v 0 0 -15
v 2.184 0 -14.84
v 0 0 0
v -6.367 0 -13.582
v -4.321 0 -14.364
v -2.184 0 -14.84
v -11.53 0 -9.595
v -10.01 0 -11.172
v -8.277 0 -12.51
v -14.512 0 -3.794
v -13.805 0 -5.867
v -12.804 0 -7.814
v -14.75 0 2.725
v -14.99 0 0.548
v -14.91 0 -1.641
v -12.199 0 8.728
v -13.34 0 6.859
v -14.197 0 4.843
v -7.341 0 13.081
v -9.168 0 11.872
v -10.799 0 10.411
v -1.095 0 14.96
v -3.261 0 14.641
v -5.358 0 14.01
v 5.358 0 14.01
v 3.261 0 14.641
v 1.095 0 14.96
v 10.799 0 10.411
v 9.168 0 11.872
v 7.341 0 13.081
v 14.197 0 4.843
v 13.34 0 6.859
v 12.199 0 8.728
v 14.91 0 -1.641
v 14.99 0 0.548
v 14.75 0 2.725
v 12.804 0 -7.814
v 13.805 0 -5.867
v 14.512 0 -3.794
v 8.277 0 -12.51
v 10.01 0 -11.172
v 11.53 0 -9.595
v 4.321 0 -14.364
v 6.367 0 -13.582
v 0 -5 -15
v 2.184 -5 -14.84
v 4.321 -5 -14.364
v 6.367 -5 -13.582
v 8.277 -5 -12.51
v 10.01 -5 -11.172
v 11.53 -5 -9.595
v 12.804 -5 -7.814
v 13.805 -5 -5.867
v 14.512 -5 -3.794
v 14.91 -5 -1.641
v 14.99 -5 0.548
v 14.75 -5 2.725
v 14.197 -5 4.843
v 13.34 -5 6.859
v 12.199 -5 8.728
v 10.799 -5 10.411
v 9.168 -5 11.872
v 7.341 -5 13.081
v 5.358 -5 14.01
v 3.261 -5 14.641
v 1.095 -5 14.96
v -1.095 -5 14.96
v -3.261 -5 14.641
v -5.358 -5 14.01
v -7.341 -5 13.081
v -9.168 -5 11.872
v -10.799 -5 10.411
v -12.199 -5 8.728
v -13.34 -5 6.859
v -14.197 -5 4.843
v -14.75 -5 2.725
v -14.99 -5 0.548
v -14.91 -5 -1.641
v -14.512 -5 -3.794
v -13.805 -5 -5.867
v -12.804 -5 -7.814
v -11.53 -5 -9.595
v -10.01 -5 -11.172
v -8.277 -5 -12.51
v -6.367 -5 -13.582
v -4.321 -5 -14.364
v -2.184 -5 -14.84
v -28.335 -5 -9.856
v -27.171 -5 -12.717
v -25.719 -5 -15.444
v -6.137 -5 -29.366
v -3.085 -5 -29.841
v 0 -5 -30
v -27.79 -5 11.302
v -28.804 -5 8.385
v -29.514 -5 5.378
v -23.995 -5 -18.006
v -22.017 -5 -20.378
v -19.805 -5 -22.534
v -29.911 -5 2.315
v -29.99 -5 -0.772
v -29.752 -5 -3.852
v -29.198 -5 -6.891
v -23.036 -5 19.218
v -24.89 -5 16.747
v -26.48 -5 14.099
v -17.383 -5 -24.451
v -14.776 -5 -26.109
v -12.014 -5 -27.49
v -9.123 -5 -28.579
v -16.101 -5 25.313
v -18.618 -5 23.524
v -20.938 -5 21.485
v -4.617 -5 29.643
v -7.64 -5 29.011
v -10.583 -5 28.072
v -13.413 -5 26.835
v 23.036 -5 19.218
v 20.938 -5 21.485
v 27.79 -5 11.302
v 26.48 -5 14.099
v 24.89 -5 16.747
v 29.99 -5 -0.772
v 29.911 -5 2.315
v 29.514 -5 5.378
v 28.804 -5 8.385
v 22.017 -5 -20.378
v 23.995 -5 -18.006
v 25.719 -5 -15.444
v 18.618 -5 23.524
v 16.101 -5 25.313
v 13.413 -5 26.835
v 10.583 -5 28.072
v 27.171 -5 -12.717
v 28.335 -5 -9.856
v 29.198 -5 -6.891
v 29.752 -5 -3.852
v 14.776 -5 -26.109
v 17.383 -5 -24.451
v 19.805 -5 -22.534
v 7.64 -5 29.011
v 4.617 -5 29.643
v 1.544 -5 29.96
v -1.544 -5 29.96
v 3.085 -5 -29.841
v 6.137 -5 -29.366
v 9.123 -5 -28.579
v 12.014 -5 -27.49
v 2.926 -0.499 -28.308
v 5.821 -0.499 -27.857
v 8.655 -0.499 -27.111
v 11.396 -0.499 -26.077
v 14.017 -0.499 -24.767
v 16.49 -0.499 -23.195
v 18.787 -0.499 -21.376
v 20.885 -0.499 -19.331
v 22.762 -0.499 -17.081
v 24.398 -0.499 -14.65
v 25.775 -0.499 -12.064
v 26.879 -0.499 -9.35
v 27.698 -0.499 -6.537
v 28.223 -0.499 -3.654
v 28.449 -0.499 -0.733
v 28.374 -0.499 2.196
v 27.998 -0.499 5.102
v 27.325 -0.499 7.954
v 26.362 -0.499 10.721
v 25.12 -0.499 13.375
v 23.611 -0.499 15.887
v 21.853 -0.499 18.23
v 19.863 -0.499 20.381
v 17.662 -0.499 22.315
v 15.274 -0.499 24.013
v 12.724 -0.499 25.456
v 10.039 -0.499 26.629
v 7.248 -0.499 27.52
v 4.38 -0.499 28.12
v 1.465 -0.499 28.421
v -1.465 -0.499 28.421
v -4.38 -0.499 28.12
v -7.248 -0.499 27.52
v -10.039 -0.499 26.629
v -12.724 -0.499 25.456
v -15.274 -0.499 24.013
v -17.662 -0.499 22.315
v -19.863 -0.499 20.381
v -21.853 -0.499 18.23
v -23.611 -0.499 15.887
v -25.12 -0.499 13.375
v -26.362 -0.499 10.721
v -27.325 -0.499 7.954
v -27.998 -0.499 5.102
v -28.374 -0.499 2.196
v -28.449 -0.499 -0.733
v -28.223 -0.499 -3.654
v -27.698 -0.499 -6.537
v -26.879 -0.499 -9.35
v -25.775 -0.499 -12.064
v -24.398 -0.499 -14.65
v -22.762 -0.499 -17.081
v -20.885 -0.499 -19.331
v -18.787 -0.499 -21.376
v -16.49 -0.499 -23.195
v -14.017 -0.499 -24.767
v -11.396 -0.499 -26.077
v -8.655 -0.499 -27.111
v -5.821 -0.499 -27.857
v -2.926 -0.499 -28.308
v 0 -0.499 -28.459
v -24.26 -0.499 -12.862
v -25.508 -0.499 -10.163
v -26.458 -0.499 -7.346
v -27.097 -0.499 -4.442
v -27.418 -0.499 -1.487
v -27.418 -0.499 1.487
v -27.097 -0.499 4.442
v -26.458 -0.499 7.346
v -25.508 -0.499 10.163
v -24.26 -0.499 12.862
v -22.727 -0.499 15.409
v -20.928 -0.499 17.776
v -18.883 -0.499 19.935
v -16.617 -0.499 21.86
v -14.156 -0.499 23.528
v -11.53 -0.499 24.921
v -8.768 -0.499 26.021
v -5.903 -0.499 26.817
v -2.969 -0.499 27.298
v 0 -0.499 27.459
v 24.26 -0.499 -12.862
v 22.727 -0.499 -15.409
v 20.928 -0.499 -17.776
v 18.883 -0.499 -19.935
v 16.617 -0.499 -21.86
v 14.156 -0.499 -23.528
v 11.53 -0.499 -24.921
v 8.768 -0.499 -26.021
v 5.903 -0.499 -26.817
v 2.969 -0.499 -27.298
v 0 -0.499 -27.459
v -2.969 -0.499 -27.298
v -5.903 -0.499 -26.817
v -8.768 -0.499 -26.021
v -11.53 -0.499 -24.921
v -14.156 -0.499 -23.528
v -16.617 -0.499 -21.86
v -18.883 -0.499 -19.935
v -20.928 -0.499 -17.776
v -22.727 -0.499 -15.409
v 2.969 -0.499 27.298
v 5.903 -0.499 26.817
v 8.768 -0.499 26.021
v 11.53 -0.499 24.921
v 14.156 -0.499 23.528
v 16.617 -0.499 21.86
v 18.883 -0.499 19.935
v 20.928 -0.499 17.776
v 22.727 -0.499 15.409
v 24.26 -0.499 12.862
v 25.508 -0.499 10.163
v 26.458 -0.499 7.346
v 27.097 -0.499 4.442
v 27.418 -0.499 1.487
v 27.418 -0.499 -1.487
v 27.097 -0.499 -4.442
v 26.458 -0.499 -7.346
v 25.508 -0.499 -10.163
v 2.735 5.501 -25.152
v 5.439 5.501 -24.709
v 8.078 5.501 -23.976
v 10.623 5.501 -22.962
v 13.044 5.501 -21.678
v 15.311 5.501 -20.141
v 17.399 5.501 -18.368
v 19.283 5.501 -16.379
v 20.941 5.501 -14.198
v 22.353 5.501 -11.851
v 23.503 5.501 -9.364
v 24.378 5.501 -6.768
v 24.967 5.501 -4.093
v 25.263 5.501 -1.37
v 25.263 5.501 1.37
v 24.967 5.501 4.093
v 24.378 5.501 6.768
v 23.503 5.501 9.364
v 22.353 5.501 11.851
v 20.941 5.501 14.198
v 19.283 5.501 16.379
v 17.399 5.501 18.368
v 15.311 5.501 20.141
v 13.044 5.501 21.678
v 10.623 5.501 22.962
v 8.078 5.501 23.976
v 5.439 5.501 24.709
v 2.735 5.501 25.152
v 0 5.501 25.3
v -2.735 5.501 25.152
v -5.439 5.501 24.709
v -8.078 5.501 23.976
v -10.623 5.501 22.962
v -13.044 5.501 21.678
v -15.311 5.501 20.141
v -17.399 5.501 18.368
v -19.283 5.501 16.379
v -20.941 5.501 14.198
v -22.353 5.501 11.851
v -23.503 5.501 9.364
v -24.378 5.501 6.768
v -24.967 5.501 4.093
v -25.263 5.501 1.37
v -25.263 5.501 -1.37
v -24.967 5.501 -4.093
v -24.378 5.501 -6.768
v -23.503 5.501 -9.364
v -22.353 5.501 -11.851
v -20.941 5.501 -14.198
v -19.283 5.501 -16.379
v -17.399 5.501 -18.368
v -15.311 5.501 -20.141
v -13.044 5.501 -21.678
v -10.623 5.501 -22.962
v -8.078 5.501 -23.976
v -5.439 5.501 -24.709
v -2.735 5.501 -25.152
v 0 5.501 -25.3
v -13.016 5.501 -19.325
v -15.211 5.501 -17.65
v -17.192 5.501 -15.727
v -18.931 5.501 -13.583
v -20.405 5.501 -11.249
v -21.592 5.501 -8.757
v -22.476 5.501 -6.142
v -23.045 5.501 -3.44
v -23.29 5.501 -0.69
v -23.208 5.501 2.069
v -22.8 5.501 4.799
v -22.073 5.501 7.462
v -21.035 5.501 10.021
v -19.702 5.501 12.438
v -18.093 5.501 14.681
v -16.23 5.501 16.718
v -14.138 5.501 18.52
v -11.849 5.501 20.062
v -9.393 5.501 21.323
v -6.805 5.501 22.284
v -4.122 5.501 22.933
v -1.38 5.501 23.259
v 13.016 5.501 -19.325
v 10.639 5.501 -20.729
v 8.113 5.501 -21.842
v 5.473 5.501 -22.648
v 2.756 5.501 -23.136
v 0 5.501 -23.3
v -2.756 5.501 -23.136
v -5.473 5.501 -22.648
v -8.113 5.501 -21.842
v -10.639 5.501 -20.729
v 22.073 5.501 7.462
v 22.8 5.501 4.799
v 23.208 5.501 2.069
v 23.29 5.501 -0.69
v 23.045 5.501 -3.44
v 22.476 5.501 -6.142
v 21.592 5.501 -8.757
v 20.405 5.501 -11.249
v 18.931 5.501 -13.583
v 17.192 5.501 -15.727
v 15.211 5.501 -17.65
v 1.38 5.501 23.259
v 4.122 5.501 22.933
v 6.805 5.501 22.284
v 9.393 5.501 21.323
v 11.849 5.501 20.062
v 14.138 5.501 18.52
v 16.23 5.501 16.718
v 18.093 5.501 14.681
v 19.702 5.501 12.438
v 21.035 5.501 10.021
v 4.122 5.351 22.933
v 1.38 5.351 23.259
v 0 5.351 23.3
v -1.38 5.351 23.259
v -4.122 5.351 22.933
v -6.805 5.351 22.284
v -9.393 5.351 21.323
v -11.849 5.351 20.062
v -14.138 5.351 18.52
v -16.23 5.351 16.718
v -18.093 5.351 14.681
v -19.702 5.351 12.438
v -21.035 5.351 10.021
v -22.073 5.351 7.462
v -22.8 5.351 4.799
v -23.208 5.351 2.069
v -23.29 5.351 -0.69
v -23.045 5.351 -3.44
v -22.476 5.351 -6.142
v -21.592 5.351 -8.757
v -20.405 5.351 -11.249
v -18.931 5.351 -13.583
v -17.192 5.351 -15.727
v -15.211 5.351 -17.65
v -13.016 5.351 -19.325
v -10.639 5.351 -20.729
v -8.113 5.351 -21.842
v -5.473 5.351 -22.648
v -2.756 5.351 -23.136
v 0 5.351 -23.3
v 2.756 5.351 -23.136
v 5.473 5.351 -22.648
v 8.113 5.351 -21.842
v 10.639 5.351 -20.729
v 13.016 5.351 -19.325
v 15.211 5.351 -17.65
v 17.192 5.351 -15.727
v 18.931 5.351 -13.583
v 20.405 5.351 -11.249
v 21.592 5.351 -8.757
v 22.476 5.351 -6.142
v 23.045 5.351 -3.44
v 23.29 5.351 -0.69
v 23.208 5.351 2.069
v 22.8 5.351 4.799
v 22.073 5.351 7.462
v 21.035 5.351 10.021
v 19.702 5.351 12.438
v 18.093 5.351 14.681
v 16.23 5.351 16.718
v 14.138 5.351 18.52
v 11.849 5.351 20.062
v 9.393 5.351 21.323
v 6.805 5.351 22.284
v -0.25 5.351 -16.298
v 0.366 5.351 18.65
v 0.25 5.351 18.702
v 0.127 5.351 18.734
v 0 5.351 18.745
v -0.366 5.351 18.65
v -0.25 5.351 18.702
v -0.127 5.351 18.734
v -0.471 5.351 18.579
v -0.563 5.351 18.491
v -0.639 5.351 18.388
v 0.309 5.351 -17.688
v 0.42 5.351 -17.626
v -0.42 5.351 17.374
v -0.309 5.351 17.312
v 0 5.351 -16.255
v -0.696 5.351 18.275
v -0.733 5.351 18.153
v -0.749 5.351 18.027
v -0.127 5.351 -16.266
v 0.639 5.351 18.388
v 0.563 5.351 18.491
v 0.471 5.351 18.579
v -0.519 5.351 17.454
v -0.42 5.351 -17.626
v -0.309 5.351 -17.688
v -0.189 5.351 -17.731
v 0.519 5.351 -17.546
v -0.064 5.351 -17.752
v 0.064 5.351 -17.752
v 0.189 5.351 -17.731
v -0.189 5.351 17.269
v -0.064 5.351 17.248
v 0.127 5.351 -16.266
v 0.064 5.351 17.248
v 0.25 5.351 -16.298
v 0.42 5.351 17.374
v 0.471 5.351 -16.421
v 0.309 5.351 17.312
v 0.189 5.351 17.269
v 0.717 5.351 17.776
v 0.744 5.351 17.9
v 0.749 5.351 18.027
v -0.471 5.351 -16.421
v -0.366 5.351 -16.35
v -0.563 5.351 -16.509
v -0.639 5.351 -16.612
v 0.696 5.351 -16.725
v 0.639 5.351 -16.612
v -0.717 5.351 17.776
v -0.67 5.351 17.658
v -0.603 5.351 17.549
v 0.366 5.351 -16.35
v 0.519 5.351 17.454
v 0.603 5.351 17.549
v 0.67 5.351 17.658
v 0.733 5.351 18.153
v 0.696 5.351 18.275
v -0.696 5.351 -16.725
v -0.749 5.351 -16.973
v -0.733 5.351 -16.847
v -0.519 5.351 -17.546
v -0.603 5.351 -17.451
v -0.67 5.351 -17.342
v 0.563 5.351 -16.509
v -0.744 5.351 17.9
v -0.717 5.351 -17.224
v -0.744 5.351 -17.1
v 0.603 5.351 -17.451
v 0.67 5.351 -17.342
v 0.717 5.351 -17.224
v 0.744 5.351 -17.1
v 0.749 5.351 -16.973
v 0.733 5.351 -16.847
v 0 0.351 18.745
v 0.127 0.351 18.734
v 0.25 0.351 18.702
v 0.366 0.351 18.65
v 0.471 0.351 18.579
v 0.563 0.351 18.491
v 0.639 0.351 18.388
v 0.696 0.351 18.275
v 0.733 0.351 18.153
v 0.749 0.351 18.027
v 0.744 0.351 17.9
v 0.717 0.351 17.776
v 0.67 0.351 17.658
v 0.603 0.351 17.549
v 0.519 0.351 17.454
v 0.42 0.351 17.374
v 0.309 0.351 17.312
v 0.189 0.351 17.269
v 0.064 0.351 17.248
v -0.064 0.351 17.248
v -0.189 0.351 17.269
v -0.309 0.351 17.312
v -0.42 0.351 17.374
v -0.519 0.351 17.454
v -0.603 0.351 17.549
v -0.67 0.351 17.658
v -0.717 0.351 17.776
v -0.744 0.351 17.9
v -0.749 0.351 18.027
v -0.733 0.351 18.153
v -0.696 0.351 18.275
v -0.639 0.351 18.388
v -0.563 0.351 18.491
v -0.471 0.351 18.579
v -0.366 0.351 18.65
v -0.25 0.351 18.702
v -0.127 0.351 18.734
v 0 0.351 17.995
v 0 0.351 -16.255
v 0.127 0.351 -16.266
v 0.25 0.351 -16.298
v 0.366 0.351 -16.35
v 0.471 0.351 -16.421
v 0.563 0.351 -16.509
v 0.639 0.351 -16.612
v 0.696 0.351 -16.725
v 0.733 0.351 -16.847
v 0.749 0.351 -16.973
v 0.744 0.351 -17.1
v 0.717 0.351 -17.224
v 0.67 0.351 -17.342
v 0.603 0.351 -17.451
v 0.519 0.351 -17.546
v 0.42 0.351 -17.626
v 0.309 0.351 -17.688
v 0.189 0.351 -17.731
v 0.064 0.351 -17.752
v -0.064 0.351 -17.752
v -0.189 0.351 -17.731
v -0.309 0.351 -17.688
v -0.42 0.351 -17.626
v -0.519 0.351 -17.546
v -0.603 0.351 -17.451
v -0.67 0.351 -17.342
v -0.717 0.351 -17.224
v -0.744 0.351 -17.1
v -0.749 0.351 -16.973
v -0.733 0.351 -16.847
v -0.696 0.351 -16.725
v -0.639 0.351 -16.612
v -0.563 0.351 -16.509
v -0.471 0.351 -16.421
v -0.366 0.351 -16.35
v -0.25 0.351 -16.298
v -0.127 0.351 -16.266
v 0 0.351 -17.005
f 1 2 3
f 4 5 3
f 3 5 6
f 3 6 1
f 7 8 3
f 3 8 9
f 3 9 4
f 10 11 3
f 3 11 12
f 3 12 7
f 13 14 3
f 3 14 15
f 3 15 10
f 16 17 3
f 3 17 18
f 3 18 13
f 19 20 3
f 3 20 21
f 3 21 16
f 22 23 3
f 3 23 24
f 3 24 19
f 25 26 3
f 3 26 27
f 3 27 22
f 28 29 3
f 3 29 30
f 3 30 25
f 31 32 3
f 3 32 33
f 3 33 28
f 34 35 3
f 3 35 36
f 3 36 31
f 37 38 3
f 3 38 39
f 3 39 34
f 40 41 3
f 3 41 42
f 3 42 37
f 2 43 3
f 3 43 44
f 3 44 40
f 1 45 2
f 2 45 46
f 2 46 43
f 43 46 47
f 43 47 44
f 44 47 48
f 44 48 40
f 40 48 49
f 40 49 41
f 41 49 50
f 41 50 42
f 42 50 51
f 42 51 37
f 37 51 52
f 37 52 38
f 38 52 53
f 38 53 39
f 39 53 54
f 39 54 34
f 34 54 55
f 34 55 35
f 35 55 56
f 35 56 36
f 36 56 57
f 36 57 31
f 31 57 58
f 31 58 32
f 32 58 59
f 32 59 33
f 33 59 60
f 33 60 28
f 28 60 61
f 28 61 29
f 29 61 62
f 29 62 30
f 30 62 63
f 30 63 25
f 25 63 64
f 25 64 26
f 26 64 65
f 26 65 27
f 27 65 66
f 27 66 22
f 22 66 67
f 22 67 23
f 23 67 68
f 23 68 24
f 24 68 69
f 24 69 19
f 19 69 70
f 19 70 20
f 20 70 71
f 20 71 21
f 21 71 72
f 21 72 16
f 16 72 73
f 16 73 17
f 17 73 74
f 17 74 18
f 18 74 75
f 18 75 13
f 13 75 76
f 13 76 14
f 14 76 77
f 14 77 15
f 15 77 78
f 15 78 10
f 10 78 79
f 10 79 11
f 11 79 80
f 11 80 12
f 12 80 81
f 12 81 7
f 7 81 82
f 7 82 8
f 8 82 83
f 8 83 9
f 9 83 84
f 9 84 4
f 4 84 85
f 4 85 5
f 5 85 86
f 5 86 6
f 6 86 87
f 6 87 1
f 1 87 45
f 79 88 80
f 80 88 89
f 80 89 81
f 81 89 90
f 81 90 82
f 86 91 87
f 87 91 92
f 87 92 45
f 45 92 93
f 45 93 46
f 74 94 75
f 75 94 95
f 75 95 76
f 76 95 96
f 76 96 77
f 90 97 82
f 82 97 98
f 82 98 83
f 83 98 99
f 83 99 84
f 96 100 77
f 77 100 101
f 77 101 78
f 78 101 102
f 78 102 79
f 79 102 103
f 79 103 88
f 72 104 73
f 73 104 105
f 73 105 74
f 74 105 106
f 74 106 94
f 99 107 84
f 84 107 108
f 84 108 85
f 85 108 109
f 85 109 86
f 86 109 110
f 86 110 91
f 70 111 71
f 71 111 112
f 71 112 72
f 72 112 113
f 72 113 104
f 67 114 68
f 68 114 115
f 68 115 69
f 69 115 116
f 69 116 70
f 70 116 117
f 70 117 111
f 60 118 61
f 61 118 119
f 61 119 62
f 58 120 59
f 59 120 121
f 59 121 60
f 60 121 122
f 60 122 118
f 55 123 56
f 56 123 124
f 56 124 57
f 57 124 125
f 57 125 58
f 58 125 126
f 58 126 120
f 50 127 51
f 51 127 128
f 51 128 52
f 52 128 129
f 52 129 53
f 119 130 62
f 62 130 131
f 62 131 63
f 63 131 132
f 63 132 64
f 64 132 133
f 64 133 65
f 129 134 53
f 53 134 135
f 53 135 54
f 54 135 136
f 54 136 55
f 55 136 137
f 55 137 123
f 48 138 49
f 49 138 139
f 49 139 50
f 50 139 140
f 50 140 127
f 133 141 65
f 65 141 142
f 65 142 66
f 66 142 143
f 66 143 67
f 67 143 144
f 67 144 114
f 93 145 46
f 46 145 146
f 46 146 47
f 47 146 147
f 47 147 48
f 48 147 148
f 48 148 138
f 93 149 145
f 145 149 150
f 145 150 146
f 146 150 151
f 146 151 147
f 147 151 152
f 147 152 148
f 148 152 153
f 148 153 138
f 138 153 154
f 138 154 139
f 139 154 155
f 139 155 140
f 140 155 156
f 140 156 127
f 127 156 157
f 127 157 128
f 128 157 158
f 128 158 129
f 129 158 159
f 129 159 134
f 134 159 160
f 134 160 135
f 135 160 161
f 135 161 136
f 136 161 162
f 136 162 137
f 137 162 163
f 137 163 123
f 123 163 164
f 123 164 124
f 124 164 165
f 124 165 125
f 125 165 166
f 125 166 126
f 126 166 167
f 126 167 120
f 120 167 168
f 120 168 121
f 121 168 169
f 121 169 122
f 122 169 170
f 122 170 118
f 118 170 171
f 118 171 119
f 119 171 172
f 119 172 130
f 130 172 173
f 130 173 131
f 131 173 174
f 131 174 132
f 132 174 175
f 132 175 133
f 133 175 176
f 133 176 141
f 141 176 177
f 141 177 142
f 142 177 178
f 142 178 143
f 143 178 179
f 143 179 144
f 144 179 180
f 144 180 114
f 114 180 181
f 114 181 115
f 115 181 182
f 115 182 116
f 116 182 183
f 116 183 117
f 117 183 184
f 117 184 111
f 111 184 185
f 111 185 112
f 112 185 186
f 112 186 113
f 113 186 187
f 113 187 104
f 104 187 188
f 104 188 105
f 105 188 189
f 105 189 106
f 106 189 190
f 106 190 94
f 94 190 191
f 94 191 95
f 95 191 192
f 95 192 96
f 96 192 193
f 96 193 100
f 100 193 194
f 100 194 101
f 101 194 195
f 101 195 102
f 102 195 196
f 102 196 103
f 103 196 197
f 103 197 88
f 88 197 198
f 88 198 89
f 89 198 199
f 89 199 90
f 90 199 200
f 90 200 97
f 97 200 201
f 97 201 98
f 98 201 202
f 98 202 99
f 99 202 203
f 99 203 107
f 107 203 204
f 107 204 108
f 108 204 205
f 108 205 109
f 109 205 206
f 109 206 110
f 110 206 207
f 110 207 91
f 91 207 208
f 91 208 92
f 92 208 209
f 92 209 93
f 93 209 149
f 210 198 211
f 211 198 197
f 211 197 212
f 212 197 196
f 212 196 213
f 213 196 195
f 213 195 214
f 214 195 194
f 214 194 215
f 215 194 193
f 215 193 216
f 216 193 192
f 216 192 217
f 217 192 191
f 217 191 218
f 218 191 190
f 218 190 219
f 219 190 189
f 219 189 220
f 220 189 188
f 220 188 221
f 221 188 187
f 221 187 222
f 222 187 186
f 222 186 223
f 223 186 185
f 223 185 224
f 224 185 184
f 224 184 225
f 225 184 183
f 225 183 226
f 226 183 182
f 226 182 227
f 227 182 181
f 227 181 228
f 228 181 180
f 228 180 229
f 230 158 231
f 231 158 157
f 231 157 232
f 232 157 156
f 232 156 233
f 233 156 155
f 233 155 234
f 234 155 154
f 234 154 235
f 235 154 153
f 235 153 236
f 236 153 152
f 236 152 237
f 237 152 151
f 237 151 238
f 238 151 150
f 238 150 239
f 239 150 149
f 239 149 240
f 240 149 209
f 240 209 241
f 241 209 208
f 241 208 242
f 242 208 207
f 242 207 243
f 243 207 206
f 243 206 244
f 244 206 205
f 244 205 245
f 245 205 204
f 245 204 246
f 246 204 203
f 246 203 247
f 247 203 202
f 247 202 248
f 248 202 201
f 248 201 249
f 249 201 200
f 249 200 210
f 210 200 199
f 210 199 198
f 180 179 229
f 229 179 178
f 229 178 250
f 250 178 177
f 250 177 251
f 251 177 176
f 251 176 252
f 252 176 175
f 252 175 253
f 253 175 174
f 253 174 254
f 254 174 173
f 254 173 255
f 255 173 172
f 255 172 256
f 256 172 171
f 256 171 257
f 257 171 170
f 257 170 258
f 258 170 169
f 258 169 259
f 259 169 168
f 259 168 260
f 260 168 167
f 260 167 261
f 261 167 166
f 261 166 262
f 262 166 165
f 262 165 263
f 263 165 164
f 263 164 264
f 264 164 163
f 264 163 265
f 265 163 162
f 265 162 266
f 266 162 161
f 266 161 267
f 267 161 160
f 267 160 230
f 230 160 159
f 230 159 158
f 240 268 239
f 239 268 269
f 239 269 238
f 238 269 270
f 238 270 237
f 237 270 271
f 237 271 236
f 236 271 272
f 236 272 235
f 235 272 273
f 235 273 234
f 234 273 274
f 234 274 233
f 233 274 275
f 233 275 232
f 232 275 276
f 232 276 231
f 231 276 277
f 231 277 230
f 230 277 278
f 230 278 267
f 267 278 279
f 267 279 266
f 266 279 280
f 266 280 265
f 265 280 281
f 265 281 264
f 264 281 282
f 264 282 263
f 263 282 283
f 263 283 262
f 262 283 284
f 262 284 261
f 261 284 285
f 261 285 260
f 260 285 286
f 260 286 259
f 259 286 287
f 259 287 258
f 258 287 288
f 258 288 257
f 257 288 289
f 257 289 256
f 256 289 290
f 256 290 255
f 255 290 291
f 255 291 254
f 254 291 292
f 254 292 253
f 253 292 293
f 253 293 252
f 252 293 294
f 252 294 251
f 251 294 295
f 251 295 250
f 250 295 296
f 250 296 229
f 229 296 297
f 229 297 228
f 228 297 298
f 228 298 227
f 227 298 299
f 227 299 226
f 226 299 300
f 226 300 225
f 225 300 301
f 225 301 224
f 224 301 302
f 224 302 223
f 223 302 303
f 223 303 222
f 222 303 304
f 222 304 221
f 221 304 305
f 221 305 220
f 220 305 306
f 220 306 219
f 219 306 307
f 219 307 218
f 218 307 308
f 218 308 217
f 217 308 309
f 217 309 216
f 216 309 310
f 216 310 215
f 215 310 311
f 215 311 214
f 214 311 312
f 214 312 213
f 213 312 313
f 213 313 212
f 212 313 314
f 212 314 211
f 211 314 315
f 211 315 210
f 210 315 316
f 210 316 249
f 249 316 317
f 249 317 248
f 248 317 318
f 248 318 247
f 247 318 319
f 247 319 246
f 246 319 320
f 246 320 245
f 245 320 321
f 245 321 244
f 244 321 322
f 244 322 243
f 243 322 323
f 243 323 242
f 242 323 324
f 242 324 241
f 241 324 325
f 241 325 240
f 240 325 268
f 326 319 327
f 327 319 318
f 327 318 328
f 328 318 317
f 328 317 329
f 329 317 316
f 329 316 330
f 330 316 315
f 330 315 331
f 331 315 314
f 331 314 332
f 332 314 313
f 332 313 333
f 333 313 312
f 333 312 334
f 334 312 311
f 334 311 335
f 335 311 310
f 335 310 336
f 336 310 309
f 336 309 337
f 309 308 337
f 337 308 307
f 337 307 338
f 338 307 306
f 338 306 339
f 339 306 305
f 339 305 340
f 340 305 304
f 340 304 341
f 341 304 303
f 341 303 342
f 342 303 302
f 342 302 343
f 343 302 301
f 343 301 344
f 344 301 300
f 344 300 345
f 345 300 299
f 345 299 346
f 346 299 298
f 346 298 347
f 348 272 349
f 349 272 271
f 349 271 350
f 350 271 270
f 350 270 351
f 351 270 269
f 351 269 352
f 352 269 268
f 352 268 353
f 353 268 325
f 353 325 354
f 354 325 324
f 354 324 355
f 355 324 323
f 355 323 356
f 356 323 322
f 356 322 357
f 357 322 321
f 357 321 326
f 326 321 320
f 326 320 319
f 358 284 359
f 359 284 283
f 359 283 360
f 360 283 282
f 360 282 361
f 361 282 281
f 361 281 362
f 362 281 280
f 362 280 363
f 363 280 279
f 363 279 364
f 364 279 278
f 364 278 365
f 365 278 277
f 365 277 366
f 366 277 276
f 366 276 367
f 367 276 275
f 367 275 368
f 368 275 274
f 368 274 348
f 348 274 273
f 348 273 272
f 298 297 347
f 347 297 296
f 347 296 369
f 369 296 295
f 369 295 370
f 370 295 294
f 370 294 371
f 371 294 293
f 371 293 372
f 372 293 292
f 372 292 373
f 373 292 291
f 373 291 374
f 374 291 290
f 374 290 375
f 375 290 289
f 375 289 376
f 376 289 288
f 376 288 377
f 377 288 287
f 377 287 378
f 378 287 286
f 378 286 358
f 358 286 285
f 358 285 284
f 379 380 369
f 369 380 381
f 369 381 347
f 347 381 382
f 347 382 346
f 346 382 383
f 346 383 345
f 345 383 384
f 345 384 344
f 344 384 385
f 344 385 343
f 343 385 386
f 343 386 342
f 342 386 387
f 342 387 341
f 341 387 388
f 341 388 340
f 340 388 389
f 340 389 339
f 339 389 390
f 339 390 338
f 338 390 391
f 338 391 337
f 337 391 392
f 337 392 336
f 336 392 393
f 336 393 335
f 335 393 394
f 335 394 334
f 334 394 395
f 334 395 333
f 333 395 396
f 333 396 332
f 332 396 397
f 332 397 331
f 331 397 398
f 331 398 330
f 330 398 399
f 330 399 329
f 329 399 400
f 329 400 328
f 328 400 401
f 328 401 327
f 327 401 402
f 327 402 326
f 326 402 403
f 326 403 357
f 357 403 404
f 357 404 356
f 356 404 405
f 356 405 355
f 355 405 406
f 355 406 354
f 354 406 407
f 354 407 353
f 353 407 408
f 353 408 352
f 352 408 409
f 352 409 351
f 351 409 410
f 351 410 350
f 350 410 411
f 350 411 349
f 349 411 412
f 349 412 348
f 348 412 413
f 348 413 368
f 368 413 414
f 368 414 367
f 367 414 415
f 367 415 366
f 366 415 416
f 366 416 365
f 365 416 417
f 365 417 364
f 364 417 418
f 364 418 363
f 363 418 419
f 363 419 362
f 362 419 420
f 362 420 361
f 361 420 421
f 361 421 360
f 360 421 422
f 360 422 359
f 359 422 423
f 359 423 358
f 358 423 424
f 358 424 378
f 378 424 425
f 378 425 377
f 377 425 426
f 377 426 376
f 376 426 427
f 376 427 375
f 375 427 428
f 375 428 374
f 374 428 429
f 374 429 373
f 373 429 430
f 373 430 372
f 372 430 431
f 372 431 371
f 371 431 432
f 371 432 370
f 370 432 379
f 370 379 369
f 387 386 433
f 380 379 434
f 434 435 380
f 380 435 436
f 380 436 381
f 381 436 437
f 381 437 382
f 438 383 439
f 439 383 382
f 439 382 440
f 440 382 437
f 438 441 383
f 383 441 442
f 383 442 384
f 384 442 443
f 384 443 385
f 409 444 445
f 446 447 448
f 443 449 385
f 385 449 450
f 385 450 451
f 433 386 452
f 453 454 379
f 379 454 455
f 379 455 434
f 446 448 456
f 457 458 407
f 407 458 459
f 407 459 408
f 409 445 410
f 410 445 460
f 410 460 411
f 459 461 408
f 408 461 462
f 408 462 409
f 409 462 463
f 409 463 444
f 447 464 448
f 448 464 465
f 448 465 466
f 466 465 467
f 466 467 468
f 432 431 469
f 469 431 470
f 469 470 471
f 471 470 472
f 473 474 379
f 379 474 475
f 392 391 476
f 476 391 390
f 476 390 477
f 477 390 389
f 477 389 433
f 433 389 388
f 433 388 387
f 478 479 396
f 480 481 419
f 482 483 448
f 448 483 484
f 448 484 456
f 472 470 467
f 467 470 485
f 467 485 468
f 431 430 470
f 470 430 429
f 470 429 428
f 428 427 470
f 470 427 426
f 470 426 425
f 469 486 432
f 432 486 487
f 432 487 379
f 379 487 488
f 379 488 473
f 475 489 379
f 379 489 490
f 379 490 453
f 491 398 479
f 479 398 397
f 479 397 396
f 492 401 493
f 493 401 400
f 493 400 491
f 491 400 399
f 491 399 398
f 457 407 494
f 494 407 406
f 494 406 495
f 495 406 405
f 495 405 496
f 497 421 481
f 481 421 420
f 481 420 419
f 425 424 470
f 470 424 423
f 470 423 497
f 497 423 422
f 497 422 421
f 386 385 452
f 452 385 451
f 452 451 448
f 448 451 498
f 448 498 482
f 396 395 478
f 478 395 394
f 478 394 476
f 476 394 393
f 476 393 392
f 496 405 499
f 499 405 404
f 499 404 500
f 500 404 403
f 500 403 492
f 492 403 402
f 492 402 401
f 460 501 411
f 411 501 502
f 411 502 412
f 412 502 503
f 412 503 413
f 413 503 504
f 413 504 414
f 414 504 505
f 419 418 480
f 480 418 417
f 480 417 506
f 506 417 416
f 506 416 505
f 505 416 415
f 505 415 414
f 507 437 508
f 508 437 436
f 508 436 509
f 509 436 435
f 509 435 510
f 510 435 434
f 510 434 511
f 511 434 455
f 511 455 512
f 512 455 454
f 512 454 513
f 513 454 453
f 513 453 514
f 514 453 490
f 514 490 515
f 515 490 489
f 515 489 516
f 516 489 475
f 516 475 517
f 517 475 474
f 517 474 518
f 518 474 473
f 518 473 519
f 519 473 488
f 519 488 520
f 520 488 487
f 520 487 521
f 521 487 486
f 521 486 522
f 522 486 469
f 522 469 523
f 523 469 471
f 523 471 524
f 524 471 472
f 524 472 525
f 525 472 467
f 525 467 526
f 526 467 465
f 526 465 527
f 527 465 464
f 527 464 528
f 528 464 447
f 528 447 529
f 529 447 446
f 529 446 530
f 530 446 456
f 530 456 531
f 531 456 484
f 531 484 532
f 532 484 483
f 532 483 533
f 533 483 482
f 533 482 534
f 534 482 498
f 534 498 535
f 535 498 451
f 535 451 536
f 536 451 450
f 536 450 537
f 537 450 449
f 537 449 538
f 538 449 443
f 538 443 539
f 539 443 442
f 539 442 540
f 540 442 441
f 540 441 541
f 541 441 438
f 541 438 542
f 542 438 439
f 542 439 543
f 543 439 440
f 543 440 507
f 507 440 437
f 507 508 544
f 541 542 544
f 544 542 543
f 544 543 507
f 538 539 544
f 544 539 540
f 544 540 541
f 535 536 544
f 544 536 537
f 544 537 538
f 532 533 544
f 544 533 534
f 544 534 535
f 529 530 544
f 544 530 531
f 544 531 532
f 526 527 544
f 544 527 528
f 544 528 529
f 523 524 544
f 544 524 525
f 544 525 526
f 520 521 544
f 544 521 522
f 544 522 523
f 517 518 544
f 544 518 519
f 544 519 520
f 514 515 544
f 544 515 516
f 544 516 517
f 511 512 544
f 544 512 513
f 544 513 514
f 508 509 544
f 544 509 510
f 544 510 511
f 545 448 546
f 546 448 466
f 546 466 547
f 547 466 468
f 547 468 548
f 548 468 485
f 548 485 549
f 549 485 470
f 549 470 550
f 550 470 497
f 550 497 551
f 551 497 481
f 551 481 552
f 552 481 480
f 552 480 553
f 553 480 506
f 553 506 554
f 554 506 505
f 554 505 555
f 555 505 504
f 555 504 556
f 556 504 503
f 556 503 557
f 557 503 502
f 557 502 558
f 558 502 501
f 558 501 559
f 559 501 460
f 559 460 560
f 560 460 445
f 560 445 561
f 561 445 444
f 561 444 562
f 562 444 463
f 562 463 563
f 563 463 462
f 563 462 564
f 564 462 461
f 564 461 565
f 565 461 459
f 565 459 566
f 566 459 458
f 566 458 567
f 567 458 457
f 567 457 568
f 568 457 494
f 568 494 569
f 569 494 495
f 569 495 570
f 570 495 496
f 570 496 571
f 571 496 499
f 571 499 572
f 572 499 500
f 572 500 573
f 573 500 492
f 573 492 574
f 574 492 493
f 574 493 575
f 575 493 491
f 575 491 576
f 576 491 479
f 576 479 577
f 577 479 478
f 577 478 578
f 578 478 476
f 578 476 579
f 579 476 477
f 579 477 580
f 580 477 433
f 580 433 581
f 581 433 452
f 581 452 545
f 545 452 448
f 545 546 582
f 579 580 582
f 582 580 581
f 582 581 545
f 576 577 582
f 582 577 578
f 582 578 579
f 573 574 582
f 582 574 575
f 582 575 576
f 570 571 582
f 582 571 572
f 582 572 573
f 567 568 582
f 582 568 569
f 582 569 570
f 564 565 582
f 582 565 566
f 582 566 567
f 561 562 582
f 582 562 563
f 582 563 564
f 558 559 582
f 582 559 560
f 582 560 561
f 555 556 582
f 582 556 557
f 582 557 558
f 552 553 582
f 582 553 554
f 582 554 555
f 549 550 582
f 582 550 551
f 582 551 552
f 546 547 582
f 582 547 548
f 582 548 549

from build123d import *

# Parameters (mm, degrees)
SKETCH2_R           = 23.5
BOSS_EXTRUDE1_DEPTH = 0.5
SKETCH3_R           = 0.75
CUT_EXTRUDE1_DEPTH  = 5


with BuildPart() as part:
    # Sketch1 → Revolve1 (revolve)
    with BuildSketch(Plane.XY, mode=Mode.PRIVATE) as revolve1_sk:
        Polygon((0, 0), (0, 4.850885244), (23.3, 4.850885244), (23.3, 5.500885244), (25.3, 5.500885244), (27.458615933, -0.499114756), (28.458615933, -0.499114756), (30, -5), (15, -5), (15, 0), align=None)
    revolve(revolve1_sk.sketch.rotate(Axis((0, 0, 0), (0, 1, 0)), 90), axis=Axis((0, 0, 0), (0, 1, 0)))

    # Sketch2 → Boss-Extrude1 (add)
    with BuildSketch(Plane(origin=(0, 4.850885244, 0), x_dir=(1, 0, 0), z_dir=(0, 1, 0))):
        Circle(SKETCH2_R)
    extrude(amount=BOSS_EXTRUDE1_DEPTH)

    # Sketch3 → Cut-Extrude1 (cut)
    with BuildSketch(Plane(origin=(0, 5.350885244, 0), x_dir=(1, 0, 0), z_dir=(0, 1, 0))):
        with Locations(Location((0, 17.004734632, 0), (0, 0, 270))):
            Circle(SKETCH3_R)
        with Locations(Location((0, -17.995265368, 0), (0, 0, 270))):
            Circle(SKETCH3_R)
    extrude(amount=-CUT_EXTRUDE1_DEPTH, mode=Mode.SUBTRACT)


solid = part.part
